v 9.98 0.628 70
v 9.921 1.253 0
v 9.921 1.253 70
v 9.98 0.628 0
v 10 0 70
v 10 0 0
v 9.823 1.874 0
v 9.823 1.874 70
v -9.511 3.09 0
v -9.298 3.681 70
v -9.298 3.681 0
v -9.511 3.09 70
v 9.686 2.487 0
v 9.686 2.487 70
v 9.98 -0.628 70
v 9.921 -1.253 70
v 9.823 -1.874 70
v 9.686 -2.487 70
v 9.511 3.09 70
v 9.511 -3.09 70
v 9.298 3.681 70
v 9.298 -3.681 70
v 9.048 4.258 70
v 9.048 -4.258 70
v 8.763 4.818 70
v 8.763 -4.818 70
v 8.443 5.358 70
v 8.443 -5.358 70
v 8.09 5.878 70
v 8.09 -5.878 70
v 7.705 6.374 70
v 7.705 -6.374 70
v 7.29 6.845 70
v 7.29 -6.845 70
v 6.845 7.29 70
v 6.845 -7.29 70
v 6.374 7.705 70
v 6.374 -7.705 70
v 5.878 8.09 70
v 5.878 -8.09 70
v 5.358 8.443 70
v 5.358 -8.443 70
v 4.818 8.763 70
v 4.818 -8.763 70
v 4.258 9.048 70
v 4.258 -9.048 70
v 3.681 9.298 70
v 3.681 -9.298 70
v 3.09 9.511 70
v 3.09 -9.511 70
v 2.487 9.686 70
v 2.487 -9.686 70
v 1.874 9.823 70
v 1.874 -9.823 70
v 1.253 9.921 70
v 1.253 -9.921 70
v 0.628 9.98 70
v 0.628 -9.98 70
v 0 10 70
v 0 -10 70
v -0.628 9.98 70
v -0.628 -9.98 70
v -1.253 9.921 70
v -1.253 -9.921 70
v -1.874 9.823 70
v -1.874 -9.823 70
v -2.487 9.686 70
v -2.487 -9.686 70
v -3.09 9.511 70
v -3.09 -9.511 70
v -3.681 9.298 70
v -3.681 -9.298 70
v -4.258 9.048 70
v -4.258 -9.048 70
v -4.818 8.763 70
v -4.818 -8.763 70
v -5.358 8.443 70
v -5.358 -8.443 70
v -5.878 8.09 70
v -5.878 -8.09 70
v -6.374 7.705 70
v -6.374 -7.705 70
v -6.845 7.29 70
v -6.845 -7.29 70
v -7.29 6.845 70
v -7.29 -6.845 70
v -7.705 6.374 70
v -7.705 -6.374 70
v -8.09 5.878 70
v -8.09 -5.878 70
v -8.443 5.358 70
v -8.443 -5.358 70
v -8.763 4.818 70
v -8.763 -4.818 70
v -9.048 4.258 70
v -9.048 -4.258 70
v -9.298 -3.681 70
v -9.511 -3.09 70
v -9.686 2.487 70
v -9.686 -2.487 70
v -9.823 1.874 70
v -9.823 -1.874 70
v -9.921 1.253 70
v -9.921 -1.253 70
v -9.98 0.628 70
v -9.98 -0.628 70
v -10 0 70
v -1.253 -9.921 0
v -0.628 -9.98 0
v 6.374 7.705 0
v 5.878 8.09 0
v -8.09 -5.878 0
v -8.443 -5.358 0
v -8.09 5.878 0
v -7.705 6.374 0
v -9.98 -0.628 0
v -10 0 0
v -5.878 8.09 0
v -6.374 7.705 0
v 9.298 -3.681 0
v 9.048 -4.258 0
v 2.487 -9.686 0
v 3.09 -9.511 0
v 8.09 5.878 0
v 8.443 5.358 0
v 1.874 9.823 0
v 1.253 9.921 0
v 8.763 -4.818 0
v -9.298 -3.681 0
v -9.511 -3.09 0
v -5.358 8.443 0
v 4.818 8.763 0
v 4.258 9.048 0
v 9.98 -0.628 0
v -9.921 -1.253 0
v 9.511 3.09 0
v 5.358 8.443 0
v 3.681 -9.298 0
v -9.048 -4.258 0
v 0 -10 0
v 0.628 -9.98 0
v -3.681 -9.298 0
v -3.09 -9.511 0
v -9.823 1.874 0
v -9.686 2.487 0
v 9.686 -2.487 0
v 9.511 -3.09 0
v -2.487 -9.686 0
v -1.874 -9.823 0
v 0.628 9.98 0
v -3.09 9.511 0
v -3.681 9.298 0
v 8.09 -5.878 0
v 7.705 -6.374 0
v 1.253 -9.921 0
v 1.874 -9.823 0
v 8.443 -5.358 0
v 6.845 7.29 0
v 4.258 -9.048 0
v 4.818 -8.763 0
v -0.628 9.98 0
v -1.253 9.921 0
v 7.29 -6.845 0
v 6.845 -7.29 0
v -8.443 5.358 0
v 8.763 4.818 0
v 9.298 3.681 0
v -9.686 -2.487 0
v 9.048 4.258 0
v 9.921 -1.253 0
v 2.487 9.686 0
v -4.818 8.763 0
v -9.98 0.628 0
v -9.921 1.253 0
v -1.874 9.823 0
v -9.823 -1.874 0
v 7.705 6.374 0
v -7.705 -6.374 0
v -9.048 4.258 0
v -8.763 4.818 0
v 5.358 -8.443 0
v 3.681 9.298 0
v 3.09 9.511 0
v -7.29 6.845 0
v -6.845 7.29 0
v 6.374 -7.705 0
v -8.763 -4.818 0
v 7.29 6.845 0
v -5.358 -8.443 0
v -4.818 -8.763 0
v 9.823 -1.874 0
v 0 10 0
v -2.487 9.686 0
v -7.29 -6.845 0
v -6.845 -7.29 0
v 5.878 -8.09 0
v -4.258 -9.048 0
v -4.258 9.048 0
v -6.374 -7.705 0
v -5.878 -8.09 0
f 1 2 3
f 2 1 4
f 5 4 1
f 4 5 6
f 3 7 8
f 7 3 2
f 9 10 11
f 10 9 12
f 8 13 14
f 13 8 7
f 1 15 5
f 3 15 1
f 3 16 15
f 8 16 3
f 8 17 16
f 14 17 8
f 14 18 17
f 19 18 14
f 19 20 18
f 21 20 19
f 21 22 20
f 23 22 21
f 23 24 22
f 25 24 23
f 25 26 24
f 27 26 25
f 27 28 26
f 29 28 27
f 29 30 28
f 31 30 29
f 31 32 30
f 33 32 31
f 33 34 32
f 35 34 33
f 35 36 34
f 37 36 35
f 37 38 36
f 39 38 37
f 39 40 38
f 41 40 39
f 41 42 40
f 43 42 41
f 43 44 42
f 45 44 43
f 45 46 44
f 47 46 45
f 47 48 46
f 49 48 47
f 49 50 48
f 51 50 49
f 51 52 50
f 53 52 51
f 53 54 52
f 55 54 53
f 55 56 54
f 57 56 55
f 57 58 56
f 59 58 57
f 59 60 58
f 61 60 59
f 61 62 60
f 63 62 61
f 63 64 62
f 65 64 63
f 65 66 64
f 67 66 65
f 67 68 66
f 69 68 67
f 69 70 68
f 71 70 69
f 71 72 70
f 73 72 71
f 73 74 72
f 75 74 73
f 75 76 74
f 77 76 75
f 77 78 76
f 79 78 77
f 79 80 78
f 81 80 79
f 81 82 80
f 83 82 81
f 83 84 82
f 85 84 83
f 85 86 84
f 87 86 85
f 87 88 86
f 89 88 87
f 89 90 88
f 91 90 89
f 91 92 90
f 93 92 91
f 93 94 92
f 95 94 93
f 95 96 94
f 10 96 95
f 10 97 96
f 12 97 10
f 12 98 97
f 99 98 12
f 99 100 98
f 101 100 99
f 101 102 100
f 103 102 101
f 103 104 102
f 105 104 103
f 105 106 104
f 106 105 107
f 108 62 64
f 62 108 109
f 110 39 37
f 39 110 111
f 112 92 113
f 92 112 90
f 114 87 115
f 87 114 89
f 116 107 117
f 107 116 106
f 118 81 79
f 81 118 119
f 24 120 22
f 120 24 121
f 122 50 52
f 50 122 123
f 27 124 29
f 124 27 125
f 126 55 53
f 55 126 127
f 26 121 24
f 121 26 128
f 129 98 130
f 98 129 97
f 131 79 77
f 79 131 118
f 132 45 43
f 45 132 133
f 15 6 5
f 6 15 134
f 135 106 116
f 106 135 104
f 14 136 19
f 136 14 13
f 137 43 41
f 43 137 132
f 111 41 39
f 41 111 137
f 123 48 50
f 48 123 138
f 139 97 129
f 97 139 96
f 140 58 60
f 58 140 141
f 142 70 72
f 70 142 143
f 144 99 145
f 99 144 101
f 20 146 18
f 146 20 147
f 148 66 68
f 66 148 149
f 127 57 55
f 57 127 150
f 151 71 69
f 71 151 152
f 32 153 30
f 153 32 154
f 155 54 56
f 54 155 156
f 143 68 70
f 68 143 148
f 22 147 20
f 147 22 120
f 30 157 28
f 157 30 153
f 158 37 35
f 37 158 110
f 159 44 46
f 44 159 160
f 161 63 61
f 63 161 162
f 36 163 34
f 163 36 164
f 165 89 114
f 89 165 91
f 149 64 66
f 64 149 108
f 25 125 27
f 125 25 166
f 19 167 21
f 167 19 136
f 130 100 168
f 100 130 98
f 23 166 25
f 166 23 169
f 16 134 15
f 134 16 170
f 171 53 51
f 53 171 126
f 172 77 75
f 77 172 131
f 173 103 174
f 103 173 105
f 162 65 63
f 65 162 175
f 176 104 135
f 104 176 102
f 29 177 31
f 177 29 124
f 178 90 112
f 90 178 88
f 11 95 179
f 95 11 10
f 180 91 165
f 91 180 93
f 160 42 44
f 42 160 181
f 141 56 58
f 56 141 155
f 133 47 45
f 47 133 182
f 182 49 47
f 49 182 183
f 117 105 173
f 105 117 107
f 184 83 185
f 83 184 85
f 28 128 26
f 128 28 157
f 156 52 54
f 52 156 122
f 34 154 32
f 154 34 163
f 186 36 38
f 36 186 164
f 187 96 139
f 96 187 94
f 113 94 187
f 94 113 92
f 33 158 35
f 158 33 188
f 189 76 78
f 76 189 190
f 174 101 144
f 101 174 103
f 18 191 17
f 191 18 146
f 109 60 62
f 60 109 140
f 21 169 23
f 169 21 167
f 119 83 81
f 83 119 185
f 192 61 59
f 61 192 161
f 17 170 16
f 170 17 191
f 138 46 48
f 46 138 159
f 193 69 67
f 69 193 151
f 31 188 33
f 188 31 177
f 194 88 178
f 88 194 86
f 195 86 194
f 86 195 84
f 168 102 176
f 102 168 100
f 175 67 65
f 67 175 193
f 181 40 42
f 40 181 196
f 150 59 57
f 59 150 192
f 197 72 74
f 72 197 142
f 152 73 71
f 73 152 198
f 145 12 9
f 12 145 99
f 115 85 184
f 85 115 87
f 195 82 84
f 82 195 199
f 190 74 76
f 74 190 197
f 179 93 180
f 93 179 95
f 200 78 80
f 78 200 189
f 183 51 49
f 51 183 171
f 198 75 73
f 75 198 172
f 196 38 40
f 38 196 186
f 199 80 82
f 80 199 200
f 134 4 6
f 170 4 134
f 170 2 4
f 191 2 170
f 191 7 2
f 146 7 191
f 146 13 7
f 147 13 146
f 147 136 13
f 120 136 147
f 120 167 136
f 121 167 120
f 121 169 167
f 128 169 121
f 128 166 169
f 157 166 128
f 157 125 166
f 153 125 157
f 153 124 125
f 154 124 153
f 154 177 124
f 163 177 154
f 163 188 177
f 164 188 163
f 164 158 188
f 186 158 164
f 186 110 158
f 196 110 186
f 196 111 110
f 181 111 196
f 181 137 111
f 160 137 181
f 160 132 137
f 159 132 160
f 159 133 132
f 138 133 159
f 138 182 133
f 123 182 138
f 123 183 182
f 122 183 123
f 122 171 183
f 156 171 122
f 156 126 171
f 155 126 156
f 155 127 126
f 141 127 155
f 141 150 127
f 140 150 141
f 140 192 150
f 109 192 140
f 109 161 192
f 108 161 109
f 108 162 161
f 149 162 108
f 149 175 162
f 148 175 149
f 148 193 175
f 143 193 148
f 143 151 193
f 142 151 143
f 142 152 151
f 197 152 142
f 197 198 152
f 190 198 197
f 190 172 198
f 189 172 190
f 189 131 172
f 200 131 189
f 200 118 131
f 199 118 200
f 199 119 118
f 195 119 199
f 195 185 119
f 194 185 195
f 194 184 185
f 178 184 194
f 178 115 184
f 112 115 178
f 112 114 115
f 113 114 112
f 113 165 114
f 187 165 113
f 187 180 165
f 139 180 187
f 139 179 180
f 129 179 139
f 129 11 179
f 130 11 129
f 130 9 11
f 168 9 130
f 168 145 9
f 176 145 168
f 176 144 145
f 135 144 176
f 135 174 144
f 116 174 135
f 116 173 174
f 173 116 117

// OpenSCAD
// Parameters for the components
module central_cylinder() {
    cylinder(h = 30, r = 10, $fn = 100); // Central cylinder: height = 30, radius = 10
}

module input_cylinder() {
    cylinder(h = 20, r = 10, $fn = 100); // Input cylinder: height = 20, radius = 10
}

module output_cylinder() {
    cylinder(h = 20, r = 10, $fn = 100); // Output cylinder: height = 20, radius = 10
}

// Assembly of the flexible coupling
module flexible_coupling() {
    translate([0, 0, 50]) input_cylinder(); // Position input cylinder at the top
    translate([0, 0, 20]) central_cylinder(); // Position central cylinder below input cylinder
    translate([0, 0, 0]) output_cylinder(); // Position output cylinder at the bottom
}

// Render the model
flexible_coupling();
